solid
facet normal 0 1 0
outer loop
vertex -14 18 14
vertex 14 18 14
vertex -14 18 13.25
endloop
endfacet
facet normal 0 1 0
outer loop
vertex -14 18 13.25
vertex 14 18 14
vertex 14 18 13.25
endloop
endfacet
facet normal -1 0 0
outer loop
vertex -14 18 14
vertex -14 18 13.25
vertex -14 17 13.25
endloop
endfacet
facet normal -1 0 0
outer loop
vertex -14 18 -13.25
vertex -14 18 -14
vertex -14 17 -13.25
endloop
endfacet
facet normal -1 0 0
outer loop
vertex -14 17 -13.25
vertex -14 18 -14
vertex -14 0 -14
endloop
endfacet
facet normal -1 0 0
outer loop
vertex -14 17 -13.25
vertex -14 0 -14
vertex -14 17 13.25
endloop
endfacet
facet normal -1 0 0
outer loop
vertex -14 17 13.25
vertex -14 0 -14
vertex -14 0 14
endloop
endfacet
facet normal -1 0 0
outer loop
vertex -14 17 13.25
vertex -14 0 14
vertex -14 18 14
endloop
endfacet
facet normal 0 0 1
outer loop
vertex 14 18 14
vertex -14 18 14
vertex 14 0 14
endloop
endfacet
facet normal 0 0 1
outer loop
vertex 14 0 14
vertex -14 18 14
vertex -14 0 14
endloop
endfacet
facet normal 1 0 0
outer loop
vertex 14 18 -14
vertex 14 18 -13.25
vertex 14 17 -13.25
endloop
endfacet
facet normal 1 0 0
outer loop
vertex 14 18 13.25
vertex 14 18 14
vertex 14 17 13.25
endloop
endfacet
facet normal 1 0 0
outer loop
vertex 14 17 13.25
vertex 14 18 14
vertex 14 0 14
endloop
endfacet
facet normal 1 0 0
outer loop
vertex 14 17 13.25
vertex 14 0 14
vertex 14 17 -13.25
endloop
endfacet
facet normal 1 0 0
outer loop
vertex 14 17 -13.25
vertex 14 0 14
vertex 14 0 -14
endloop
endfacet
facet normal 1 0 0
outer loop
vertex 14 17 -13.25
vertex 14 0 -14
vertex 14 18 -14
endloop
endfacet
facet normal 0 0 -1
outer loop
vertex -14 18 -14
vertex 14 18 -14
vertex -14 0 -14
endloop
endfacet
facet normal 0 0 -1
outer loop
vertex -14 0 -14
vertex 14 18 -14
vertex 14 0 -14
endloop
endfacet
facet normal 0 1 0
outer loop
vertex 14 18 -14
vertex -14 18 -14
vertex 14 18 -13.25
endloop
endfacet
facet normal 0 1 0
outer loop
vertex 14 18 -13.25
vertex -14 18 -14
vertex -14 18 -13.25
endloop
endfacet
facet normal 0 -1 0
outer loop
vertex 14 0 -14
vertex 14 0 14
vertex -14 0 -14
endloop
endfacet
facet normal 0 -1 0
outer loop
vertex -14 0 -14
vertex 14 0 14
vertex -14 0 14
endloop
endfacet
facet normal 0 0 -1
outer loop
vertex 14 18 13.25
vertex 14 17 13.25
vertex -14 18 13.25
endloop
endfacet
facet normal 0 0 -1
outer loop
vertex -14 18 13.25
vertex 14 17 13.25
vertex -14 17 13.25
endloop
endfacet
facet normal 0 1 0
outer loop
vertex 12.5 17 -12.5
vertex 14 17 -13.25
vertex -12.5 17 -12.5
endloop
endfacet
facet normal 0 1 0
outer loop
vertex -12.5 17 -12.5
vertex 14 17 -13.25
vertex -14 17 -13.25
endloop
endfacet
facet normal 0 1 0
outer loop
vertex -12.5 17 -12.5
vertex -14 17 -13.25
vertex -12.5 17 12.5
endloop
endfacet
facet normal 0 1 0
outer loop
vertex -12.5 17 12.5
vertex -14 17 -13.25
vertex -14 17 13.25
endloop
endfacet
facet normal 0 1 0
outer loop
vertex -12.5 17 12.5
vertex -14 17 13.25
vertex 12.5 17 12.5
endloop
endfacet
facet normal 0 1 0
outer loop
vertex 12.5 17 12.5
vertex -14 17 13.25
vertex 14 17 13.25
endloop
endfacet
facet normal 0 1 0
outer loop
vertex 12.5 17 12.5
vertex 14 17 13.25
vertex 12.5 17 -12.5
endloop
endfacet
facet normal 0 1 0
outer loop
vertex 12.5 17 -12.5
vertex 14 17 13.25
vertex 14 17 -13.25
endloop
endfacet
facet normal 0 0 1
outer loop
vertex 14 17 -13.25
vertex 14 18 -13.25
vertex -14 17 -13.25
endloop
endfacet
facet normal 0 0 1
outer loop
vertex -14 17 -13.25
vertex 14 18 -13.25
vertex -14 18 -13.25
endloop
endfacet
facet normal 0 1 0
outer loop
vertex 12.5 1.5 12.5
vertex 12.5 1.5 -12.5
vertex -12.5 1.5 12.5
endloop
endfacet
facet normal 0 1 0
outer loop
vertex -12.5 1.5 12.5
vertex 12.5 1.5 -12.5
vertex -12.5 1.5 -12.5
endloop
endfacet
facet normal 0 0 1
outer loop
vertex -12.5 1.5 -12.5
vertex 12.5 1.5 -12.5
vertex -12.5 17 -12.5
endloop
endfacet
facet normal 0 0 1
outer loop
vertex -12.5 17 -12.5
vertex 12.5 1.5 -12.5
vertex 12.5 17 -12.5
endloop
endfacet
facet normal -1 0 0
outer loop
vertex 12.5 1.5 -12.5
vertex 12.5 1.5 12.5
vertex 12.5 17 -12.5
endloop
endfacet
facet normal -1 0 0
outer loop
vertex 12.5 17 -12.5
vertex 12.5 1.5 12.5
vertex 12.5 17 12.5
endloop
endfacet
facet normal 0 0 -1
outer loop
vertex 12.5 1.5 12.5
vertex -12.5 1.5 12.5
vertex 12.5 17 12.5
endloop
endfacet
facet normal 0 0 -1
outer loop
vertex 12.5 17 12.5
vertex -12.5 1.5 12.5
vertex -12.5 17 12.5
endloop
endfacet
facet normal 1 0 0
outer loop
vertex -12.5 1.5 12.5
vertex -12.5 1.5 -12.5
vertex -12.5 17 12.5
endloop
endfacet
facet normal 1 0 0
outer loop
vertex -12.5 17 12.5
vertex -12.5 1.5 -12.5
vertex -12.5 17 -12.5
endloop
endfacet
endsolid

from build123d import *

# Parameters (mm, degrees)
SKETCH1_W           = 28
SKETCH1_H           = 28
BOSS_EXTRUDE1_DEPTH = 18
SHELL2_T            = -1.5
SKETCH2_W           = 26.5
SKETCH2_H           = 1
CUT_EXTRUDE1_DEPTH  = 29


with BuildPart() as part:
    # Sketch1 → Boss-Extrude1 (new body)
    with BuildSketch(Plane(origin=(0, 0, 0), x_dir=(1, 0, 0), z_dir=(0, 1, 0))):
        Rectangle(SKETCH1_W, SKETCH1_H)
    extrude(amount=BOSS_EXTRUDE1_DEPTH)

    # Shell2
    shell2_openings = [part.faces().sort_by_distance(p)[0] for p in [
        (0, 18, 0),
    ]]
    offset(amount=SHELL2_T, openings=shell2_openings, kind=Kind.INTERSECTION)

    # Sketch2 → Cut-Extrude1 (cut, through all)
    with BuildSketch(Plane.ZY.offset(14)):
        with Locations((0, 17.5)):
            Rectangle(SKETCH2_W, SKETCH2_H)
    extrude(amount=-CUT_EXTRUDE1_DEPTH, mode=Mode.SUBTRACT)


solid = part.part
